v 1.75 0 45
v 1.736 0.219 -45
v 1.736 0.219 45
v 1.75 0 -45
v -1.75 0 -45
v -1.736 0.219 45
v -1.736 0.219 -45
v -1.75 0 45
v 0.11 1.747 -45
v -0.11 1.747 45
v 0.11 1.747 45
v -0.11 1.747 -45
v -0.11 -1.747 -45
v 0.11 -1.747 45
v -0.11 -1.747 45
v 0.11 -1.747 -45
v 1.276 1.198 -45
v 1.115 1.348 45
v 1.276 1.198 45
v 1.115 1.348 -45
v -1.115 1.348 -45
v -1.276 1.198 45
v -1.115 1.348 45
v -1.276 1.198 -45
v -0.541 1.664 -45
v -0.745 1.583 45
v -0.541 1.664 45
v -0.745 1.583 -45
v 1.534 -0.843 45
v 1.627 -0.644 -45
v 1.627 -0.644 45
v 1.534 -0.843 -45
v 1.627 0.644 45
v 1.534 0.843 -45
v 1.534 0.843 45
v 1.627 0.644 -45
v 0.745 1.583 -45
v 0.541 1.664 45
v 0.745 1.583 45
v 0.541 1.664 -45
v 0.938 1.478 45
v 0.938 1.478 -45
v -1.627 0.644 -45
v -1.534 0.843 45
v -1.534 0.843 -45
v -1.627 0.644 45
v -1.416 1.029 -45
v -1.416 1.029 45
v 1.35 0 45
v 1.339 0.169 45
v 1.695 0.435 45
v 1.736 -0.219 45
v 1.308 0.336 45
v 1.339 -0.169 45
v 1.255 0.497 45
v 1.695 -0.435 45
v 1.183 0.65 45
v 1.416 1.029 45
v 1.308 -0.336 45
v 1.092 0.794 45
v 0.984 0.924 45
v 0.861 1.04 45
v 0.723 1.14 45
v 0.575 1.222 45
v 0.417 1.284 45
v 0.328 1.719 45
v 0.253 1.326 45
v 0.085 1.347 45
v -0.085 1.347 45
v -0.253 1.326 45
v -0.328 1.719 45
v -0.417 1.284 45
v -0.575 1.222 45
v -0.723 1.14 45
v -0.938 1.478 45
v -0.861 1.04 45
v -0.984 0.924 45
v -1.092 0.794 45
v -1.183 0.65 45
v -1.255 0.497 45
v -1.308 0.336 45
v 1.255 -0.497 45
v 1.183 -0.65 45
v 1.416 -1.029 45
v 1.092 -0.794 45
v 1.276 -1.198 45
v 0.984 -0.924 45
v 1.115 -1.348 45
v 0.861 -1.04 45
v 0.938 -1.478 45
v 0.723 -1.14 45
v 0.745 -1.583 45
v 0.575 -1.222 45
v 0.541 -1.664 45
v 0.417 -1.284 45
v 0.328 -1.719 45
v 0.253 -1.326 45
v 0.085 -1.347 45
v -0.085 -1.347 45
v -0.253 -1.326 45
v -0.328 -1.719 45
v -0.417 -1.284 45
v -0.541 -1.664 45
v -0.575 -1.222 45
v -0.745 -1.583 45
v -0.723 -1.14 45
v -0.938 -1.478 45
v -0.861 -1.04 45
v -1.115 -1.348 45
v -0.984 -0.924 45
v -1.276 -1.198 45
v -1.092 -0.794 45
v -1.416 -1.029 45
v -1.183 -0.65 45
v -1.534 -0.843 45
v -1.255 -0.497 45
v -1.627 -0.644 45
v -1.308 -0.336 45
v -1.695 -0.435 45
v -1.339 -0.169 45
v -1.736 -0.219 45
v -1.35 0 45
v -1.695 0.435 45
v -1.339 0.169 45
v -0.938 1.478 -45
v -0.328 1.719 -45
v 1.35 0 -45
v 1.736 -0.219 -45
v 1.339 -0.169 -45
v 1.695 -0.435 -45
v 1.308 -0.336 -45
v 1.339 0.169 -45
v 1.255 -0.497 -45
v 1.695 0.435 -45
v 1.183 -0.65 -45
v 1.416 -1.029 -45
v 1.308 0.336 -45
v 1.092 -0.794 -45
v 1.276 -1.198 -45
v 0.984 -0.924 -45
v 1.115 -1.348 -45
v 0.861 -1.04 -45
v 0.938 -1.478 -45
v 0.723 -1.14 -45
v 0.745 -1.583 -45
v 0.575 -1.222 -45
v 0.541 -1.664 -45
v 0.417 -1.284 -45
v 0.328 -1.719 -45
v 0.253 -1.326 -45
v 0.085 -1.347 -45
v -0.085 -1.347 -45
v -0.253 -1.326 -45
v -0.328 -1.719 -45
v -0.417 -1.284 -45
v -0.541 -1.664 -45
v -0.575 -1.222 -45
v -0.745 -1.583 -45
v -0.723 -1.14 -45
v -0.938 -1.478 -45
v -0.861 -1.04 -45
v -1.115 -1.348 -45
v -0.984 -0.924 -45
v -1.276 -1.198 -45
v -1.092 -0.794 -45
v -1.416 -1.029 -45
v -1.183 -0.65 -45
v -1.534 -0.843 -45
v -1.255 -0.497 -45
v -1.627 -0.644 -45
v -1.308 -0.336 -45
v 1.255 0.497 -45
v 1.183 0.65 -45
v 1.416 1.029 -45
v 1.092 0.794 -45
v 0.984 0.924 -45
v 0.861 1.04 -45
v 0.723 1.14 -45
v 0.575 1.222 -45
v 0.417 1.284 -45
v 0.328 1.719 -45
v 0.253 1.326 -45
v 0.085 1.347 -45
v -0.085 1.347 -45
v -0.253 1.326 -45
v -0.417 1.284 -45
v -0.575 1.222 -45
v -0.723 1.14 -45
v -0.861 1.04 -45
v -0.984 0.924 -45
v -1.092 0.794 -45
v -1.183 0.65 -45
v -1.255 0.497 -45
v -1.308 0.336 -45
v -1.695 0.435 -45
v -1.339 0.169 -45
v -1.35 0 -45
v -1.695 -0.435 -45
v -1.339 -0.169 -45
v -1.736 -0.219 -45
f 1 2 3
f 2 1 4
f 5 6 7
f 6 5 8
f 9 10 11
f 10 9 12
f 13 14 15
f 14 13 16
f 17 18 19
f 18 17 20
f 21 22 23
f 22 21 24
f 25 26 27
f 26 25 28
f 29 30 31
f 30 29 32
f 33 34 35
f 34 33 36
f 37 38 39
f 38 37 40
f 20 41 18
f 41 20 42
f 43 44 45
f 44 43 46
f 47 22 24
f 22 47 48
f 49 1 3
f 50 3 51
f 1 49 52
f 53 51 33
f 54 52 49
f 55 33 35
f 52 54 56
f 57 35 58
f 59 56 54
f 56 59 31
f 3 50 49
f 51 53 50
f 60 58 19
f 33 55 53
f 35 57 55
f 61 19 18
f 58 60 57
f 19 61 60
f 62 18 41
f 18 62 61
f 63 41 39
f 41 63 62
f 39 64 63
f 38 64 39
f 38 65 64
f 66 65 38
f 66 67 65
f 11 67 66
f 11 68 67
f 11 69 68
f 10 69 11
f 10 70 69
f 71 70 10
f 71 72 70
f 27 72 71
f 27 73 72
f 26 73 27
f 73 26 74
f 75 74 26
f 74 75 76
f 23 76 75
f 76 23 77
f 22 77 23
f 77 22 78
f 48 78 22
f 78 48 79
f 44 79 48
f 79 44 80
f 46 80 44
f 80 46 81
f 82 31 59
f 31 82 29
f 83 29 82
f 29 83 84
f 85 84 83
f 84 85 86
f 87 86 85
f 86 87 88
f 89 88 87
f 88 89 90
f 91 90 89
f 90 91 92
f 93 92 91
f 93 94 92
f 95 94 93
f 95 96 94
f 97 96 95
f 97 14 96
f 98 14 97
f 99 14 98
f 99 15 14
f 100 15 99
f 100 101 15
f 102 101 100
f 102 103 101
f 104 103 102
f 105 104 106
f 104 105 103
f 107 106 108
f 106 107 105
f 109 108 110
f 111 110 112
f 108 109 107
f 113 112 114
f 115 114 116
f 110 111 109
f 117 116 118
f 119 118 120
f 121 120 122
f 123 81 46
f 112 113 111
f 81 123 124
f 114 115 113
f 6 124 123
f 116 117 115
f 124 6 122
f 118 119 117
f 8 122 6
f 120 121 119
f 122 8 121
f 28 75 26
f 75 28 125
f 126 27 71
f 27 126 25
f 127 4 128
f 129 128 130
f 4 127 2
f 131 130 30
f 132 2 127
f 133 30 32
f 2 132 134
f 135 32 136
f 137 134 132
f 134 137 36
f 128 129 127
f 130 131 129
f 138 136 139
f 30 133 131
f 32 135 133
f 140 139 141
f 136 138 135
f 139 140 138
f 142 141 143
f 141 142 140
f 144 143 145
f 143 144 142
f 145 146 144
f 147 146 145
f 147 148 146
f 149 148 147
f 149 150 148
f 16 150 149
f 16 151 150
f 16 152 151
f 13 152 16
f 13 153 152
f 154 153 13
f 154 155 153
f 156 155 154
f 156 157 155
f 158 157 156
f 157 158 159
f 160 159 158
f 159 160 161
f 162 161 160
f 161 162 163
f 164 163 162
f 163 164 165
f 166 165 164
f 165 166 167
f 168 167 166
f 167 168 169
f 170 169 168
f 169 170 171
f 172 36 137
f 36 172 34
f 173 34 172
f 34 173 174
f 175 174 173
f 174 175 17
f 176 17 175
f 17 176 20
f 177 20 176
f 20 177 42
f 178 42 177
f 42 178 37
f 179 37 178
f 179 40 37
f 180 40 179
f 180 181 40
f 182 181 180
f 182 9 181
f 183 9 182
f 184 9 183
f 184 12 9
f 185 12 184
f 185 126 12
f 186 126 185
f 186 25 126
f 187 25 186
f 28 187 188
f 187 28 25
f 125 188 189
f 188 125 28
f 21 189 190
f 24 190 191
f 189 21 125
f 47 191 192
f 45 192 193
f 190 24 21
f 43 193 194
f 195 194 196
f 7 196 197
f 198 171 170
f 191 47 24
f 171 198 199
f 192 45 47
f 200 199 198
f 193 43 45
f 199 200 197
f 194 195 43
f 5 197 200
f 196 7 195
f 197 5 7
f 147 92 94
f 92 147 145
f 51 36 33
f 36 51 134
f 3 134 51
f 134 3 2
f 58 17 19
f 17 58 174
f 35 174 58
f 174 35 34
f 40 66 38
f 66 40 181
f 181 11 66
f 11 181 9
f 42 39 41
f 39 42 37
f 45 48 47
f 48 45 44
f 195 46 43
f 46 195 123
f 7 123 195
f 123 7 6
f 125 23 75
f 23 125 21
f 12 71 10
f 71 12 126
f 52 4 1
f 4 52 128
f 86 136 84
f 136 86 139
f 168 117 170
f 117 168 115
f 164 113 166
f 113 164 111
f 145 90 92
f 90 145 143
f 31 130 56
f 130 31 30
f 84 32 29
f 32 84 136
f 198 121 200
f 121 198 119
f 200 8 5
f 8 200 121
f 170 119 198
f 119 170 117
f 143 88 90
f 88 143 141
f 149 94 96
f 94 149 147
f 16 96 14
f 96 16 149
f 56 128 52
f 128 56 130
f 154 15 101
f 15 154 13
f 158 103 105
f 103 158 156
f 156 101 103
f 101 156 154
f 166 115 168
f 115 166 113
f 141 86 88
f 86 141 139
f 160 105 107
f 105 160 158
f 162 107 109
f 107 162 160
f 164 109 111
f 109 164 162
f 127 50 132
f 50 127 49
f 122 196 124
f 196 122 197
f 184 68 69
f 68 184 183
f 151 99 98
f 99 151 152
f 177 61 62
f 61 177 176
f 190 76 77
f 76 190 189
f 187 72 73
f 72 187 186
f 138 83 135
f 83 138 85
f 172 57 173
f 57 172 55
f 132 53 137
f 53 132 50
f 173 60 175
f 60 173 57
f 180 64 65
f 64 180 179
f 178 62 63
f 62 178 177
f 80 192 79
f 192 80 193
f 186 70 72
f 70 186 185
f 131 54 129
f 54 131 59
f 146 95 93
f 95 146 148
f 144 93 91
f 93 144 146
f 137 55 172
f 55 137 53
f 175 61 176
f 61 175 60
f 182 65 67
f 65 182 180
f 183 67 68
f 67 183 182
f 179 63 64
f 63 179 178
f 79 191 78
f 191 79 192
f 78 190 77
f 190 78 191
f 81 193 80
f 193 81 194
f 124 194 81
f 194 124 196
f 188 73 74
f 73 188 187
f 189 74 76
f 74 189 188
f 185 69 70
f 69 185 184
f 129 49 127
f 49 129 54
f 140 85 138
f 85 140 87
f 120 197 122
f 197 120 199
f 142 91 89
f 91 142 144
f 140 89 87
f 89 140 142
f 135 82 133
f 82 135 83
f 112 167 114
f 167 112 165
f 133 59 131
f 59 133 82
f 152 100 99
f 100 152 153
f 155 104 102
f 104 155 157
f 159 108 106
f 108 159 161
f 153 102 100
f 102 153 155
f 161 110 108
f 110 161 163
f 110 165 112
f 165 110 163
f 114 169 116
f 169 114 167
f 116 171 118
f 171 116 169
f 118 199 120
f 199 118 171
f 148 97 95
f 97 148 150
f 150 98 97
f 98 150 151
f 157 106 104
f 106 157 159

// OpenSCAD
$fn = 50;


difference() {
	union() {
		translate(v = [0, 0, -45.0000000000]) {
			cylinder(h = 90, r = 1.7500000000);
		}
	}
	union() {
		translate(v = [0, 0, -100.0000000000]) {
			cylinder(h = 200, r = 1.3500000000);
		}
	}
}
